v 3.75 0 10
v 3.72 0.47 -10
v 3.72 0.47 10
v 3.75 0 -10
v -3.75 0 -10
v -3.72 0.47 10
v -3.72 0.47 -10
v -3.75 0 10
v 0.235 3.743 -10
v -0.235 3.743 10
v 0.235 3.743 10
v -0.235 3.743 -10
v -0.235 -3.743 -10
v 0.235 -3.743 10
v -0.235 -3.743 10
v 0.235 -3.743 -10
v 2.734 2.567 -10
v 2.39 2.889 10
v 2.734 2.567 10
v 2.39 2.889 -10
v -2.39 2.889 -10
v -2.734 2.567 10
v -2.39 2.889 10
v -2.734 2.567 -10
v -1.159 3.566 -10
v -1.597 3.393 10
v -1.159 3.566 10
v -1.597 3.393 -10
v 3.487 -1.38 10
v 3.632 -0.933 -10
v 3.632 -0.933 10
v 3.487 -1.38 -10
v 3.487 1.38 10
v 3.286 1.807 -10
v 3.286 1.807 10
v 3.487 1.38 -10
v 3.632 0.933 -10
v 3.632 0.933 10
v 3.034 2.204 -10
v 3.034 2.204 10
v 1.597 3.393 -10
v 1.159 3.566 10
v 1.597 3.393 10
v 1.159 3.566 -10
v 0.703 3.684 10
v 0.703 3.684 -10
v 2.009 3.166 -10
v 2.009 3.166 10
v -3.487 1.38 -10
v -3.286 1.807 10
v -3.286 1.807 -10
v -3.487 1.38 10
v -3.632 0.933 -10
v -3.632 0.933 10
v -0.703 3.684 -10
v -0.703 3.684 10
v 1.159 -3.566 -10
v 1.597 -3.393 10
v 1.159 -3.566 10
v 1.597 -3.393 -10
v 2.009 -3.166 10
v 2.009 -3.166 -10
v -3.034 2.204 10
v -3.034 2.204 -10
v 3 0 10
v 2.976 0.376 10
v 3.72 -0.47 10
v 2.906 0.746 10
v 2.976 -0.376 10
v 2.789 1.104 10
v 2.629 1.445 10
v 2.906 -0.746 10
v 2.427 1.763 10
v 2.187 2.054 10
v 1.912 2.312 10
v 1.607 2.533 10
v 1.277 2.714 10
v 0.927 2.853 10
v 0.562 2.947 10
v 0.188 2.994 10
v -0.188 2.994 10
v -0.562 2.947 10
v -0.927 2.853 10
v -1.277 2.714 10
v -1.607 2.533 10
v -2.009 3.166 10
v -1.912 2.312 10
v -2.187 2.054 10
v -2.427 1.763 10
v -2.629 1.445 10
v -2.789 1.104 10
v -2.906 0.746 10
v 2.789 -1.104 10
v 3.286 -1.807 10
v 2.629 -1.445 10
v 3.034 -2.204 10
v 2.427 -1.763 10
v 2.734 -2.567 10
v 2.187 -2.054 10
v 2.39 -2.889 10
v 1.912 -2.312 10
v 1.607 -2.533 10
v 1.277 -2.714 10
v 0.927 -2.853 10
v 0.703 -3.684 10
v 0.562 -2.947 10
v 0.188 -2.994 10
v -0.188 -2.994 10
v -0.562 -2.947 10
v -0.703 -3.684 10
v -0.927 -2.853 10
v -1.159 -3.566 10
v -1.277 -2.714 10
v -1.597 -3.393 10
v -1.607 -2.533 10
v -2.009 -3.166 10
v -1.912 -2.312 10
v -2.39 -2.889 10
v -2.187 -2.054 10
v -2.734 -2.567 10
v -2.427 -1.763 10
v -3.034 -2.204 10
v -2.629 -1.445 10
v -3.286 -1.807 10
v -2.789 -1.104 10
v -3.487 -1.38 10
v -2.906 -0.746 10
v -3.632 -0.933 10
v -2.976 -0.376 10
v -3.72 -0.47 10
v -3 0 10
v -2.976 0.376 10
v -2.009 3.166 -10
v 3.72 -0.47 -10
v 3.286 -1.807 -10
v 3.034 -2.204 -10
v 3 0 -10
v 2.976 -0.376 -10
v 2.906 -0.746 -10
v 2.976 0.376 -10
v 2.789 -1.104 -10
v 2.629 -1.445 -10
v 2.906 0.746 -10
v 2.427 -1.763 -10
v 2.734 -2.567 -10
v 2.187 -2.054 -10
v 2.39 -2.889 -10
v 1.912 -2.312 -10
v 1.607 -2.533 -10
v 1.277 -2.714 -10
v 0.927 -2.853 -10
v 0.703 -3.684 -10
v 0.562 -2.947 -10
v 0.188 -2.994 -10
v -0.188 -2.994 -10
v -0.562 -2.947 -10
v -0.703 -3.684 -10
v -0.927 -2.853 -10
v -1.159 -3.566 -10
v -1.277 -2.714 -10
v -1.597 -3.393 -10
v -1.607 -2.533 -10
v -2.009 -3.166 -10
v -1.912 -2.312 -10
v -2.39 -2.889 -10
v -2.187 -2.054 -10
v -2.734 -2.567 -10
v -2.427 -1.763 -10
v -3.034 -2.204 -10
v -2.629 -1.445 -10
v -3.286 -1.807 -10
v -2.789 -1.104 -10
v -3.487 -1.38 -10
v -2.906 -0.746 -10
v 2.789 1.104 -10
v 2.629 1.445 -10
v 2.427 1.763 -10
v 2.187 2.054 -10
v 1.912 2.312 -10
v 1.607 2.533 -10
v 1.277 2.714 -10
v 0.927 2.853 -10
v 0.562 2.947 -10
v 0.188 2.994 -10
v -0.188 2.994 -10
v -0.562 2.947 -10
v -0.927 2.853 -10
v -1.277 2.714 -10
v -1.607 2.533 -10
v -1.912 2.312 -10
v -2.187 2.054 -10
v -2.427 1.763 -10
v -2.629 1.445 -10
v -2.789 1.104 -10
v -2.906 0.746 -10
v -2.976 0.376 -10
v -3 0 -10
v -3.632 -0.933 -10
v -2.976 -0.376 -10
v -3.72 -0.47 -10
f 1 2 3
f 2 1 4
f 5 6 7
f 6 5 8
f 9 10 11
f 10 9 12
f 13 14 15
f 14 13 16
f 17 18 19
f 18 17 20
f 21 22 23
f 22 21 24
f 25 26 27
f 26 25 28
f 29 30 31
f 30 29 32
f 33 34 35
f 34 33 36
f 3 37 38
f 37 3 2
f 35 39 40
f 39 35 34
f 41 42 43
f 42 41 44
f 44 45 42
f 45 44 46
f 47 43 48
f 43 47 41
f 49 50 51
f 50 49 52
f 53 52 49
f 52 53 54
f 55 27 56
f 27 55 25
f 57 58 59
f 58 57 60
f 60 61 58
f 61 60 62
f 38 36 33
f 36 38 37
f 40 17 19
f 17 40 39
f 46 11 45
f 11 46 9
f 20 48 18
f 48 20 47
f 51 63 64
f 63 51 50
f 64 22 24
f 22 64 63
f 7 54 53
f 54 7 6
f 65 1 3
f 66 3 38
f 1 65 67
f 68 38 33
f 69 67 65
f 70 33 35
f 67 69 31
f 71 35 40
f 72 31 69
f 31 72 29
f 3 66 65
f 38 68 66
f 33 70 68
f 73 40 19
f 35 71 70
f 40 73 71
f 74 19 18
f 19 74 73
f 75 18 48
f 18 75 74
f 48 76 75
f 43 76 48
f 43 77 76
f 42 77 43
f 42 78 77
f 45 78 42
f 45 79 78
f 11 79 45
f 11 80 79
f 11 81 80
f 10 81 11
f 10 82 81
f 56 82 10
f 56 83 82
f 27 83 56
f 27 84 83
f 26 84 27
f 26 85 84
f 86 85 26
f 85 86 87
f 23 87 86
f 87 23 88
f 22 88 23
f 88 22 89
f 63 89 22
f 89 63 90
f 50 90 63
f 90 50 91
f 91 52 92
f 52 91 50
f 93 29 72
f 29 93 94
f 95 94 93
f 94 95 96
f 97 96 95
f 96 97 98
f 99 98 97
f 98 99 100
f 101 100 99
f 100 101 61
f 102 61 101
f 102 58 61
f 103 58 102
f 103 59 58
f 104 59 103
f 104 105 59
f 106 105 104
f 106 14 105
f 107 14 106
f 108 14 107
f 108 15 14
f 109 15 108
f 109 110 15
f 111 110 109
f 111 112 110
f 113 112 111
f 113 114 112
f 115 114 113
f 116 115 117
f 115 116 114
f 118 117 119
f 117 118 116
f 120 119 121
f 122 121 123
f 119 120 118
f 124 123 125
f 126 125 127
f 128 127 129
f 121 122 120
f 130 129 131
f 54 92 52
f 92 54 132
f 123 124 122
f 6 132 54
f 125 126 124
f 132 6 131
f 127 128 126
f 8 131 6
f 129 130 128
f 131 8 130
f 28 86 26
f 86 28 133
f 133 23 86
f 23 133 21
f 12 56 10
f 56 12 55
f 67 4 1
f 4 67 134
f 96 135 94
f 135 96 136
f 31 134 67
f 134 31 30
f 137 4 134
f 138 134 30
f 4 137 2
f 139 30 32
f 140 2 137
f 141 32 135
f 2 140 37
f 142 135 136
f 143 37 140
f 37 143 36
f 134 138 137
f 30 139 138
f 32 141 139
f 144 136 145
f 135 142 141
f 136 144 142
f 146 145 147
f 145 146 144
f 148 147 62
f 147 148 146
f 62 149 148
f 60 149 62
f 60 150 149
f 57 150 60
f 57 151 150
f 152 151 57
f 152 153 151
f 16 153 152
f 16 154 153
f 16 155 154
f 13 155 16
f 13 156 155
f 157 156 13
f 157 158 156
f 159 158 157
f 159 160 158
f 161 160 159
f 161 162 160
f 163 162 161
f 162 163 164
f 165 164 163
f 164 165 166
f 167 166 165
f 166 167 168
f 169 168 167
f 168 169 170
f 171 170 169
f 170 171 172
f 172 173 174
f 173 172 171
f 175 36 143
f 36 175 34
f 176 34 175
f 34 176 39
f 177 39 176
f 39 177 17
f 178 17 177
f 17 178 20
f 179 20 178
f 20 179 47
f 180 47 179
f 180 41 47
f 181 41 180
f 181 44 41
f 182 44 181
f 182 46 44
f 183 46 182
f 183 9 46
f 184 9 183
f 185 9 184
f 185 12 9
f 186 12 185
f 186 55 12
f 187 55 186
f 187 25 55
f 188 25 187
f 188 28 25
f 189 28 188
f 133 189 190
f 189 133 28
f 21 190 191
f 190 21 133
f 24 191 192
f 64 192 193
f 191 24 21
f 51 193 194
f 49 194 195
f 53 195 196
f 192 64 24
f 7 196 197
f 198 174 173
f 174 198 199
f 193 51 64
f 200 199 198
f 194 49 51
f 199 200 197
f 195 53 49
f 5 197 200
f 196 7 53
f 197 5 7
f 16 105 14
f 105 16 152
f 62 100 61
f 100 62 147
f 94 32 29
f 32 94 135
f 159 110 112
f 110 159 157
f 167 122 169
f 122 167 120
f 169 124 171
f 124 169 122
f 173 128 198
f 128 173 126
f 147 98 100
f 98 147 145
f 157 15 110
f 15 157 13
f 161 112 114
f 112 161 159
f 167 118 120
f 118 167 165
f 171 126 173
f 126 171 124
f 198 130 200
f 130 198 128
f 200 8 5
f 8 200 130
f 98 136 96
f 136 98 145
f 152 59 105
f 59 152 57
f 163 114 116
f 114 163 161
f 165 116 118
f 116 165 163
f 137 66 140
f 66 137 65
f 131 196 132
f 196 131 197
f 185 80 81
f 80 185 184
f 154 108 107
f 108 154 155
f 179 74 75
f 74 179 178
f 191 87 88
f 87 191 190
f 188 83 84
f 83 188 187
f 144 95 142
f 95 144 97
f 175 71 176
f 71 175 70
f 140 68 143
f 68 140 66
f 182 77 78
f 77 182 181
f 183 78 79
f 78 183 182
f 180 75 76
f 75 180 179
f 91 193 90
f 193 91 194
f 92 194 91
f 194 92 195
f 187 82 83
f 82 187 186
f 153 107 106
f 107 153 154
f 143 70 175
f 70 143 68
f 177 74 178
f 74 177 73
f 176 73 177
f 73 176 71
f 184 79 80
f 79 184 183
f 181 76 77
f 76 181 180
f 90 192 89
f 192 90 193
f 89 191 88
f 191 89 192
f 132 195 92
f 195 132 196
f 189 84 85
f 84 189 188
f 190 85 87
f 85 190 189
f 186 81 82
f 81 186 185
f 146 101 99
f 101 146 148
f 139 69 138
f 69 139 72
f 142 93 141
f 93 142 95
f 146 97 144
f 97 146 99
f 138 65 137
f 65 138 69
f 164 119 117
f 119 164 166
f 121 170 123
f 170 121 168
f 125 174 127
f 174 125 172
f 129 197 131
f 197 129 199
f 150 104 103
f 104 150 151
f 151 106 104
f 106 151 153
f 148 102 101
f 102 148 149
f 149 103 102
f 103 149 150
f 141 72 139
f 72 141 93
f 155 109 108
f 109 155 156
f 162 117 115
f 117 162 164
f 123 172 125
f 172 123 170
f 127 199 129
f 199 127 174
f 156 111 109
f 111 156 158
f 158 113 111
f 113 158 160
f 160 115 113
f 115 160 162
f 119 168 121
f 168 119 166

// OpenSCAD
$fn = 50;


difference() {
	union() {
		translate(v = [0, 0, -10.0000000000]) {
			cylinder(h = 20, r = 3.7500000000);
		}
	}
	union() {
		translate(v = [0, 0, -100.0000000000]) {
			cylinder(h = 200, r = 3.0000000000);
		}
	}
}
